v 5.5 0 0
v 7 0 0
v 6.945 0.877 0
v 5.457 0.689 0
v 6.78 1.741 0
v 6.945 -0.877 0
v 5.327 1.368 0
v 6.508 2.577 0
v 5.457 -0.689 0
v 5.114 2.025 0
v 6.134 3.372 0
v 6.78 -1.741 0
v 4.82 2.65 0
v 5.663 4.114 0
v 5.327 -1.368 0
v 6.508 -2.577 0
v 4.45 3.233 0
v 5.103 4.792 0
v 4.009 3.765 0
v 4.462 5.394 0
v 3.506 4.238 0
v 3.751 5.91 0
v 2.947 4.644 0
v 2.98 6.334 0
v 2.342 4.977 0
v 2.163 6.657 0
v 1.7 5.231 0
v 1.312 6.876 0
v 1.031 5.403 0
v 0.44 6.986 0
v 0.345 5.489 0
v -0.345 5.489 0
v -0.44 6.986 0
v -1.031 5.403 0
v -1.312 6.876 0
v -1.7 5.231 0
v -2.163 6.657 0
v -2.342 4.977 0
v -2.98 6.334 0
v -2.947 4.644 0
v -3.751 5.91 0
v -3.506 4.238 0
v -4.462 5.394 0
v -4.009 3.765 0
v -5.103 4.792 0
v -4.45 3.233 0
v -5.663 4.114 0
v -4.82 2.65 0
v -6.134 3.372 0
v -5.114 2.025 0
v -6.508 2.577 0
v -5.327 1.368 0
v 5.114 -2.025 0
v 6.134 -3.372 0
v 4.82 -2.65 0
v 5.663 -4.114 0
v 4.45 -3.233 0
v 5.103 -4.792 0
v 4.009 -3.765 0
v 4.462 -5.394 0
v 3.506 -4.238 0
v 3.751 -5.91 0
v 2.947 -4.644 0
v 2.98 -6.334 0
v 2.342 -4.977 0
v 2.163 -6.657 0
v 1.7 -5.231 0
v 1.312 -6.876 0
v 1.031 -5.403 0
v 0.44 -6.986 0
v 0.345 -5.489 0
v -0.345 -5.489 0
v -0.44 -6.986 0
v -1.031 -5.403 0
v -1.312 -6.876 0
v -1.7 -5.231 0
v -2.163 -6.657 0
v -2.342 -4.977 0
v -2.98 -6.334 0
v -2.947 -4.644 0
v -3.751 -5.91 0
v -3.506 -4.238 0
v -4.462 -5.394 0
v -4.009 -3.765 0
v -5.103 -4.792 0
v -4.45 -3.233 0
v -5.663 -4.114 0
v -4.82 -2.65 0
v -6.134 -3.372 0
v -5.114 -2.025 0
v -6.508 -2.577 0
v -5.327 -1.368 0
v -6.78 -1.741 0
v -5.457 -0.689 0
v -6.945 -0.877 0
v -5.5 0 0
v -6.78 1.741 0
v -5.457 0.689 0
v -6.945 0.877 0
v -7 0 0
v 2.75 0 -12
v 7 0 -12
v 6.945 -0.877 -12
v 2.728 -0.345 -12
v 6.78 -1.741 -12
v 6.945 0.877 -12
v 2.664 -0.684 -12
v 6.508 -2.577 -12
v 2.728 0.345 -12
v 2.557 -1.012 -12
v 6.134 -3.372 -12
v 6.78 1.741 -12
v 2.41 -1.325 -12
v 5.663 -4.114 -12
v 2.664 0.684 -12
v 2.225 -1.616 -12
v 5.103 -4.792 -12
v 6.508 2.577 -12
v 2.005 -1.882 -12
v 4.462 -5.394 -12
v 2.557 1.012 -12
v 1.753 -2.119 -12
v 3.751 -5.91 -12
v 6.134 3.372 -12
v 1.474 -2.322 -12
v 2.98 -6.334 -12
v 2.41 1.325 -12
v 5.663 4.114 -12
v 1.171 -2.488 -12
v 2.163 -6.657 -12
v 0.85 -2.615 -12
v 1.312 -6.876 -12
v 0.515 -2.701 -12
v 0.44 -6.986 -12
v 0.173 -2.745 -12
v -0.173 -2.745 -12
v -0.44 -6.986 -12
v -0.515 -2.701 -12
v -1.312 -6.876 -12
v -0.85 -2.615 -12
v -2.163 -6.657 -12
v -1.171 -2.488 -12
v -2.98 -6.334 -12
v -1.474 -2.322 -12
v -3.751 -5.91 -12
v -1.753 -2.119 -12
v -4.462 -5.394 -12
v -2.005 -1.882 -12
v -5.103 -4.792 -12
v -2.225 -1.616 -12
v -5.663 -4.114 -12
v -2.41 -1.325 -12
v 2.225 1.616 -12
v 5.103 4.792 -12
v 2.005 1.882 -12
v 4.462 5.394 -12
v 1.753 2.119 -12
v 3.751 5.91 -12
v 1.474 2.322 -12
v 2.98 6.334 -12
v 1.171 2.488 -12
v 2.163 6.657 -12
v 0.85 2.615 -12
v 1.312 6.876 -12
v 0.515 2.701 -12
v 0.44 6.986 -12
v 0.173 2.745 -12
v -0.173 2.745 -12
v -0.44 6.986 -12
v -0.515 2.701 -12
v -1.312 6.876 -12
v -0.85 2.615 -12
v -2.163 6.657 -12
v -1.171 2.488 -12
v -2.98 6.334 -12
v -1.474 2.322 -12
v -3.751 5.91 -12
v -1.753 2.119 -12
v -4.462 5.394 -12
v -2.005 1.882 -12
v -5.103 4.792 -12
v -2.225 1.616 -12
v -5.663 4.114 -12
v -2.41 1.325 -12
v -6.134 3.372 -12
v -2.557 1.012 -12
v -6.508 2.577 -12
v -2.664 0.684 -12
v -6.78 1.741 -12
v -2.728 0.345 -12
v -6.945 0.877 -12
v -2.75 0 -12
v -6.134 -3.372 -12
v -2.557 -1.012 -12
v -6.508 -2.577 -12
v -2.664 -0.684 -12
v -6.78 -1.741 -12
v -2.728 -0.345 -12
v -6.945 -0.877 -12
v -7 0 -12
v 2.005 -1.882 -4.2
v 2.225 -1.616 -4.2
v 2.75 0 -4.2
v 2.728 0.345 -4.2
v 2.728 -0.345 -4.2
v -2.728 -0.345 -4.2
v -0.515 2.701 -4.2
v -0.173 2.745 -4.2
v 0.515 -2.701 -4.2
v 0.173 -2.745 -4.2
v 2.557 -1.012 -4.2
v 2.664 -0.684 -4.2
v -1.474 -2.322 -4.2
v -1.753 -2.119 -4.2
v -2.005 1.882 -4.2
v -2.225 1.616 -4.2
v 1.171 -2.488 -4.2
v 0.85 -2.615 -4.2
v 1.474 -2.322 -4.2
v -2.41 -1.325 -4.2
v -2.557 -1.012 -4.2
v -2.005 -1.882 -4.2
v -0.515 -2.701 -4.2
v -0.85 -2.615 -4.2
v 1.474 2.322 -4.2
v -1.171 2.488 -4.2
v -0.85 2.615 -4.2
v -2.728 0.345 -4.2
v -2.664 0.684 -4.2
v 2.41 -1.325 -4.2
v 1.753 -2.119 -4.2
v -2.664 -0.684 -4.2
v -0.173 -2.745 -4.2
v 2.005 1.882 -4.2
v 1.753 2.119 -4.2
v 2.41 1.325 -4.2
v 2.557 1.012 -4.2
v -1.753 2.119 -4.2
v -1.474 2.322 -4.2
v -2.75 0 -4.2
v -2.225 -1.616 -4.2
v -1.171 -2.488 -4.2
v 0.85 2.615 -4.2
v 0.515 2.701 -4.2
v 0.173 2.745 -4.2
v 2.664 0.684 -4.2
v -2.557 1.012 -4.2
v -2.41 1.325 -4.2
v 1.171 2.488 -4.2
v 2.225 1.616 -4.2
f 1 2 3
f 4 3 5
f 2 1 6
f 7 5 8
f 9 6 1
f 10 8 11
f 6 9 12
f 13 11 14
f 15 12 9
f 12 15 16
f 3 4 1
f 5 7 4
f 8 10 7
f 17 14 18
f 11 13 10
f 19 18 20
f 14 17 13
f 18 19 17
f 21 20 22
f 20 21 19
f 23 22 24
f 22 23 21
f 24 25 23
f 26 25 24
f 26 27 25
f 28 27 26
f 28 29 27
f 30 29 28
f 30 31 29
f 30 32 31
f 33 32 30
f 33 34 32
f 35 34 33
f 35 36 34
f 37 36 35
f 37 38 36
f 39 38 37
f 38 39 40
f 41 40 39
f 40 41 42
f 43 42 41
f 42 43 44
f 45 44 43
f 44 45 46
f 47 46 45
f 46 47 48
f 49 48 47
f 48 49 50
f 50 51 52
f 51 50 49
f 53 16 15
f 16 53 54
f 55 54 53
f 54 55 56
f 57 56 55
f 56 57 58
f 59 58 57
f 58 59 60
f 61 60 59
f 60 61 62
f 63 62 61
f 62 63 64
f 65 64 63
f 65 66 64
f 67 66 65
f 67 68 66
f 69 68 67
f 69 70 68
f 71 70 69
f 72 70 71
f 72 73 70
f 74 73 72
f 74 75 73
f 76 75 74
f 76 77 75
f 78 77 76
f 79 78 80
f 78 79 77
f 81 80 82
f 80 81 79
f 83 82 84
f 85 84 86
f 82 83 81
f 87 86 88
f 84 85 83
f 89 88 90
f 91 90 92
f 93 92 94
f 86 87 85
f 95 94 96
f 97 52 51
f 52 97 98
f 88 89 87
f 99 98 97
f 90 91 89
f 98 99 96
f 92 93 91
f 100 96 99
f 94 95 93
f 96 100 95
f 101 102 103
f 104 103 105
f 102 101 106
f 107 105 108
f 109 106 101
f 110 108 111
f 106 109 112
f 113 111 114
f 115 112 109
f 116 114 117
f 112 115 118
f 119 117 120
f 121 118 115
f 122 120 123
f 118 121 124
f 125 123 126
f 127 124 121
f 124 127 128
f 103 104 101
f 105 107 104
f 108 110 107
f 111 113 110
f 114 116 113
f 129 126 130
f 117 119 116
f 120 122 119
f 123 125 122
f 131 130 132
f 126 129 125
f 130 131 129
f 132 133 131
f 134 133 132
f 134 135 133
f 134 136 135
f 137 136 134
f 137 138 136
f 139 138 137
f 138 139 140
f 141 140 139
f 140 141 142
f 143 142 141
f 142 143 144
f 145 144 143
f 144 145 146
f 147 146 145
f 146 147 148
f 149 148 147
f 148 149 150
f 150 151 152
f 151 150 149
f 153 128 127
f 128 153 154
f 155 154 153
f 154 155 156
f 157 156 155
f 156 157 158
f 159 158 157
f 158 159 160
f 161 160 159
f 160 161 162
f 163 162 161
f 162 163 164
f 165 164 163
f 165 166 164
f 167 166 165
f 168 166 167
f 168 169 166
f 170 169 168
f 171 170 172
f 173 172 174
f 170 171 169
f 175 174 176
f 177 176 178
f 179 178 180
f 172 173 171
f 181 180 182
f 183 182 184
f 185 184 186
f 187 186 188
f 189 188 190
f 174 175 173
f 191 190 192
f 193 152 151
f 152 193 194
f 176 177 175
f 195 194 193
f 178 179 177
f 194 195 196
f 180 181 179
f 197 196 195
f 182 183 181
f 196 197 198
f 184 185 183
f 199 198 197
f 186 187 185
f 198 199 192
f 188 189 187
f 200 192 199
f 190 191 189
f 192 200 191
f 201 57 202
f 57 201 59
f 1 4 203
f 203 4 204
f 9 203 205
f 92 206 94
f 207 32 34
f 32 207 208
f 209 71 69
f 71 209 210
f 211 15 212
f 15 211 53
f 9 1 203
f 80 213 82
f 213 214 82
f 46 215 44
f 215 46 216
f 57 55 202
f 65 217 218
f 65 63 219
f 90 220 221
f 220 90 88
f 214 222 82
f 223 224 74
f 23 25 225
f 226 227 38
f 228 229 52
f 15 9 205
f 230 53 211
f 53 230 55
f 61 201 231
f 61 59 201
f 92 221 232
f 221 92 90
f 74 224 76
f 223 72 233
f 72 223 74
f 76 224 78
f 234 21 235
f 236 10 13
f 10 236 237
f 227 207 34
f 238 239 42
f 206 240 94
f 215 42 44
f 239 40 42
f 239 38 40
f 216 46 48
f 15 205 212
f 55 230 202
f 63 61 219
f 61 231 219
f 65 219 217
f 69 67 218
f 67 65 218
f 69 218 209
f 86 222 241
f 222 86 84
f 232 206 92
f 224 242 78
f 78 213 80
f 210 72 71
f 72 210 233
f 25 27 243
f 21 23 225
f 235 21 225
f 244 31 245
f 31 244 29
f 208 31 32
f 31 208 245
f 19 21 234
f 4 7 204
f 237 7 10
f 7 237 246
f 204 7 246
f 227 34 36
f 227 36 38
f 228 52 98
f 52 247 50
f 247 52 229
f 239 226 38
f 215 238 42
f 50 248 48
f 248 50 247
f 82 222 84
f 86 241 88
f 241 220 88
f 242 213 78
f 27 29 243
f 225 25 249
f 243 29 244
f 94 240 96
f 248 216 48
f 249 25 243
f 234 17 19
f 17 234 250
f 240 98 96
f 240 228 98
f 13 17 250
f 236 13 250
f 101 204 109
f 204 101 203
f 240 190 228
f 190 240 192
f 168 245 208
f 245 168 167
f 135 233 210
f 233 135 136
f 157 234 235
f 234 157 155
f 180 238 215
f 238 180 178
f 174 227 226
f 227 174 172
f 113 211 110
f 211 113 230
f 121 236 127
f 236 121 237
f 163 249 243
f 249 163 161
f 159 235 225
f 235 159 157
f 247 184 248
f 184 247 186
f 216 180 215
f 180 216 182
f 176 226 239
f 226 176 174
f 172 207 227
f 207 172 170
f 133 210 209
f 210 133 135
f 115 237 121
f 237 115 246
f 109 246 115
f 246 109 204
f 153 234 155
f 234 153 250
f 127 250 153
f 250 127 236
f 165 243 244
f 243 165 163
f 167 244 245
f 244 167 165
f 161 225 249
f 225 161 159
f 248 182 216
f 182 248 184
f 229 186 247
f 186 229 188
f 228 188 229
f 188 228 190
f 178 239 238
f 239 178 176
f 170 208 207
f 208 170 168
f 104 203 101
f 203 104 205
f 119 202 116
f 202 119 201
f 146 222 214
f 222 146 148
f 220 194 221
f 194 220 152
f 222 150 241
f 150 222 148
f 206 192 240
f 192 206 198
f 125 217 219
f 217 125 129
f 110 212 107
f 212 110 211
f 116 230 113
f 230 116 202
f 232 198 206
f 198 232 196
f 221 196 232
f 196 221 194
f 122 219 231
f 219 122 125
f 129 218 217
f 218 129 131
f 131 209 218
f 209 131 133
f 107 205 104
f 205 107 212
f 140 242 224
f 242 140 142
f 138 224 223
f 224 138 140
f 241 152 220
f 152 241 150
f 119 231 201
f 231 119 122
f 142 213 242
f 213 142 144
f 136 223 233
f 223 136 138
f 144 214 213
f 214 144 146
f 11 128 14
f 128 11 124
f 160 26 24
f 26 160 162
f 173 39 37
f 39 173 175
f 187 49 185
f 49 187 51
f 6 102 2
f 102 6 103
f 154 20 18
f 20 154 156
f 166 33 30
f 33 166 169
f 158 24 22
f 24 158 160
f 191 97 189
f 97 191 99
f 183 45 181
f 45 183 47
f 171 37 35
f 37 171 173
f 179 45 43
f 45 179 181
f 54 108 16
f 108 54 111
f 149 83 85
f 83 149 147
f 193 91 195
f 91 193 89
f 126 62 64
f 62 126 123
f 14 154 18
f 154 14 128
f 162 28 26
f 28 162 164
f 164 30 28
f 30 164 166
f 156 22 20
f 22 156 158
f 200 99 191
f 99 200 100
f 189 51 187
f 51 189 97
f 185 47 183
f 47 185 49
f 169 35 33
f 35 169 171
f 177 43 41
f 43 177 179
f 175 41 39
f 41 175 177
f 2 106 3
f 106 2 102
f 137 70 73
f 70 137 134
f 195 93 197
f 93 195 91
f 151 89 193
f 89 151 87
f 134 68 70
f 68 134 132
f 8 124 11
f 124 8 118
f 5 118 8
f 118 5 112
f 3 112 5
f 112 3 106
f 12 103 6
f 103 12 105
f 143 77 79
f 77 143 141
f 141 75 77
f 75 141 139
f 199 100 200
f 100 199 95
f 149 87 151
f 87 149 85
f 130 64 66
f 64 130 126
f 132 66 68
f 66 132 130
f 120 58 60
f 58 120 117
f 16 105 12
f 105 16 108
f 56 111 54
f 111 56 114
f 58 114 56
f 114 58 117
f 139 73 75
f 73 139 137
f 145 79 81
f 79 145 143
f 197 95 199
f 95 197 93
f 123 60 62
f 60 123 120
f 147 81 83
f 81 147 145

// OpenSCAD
$fn = 50;


difference() {
	union() {
		translate(v = [0, 0, -12.0000000000]) {
			cylinder(h = 12, r = 7.0000000000);
		}
		cylinder(h = 0, r = 17.0000000000);
	}
	union() {
		translate(v = [0, 0, 0]) {
			rotate(a = [0, 0, 0]) {
				difference() {
					union() {
						#translate(v = [0, 0, -12.0000000000]) {
							cylinder(h = 12, r = 2.2500000000);
						}
						#translate(v = [0, 0, -4.2000000000]) {
							cylinder(h = 4.2000000000, r = 7.0000000000, r1 = 2.7500000000, r2 = 5.5000000000);
						}
						#translate(v = [0, 0, -12.0000000000]) {
							cylinder(h = 12, r = 2.7500000000);
						}
						#translate(v = [0, 0, -12.0000000000]) {
							cylinder(h = 12, r = 2.2500000000);
						}
					}
					union();
				}
			}
		}
	}
}
